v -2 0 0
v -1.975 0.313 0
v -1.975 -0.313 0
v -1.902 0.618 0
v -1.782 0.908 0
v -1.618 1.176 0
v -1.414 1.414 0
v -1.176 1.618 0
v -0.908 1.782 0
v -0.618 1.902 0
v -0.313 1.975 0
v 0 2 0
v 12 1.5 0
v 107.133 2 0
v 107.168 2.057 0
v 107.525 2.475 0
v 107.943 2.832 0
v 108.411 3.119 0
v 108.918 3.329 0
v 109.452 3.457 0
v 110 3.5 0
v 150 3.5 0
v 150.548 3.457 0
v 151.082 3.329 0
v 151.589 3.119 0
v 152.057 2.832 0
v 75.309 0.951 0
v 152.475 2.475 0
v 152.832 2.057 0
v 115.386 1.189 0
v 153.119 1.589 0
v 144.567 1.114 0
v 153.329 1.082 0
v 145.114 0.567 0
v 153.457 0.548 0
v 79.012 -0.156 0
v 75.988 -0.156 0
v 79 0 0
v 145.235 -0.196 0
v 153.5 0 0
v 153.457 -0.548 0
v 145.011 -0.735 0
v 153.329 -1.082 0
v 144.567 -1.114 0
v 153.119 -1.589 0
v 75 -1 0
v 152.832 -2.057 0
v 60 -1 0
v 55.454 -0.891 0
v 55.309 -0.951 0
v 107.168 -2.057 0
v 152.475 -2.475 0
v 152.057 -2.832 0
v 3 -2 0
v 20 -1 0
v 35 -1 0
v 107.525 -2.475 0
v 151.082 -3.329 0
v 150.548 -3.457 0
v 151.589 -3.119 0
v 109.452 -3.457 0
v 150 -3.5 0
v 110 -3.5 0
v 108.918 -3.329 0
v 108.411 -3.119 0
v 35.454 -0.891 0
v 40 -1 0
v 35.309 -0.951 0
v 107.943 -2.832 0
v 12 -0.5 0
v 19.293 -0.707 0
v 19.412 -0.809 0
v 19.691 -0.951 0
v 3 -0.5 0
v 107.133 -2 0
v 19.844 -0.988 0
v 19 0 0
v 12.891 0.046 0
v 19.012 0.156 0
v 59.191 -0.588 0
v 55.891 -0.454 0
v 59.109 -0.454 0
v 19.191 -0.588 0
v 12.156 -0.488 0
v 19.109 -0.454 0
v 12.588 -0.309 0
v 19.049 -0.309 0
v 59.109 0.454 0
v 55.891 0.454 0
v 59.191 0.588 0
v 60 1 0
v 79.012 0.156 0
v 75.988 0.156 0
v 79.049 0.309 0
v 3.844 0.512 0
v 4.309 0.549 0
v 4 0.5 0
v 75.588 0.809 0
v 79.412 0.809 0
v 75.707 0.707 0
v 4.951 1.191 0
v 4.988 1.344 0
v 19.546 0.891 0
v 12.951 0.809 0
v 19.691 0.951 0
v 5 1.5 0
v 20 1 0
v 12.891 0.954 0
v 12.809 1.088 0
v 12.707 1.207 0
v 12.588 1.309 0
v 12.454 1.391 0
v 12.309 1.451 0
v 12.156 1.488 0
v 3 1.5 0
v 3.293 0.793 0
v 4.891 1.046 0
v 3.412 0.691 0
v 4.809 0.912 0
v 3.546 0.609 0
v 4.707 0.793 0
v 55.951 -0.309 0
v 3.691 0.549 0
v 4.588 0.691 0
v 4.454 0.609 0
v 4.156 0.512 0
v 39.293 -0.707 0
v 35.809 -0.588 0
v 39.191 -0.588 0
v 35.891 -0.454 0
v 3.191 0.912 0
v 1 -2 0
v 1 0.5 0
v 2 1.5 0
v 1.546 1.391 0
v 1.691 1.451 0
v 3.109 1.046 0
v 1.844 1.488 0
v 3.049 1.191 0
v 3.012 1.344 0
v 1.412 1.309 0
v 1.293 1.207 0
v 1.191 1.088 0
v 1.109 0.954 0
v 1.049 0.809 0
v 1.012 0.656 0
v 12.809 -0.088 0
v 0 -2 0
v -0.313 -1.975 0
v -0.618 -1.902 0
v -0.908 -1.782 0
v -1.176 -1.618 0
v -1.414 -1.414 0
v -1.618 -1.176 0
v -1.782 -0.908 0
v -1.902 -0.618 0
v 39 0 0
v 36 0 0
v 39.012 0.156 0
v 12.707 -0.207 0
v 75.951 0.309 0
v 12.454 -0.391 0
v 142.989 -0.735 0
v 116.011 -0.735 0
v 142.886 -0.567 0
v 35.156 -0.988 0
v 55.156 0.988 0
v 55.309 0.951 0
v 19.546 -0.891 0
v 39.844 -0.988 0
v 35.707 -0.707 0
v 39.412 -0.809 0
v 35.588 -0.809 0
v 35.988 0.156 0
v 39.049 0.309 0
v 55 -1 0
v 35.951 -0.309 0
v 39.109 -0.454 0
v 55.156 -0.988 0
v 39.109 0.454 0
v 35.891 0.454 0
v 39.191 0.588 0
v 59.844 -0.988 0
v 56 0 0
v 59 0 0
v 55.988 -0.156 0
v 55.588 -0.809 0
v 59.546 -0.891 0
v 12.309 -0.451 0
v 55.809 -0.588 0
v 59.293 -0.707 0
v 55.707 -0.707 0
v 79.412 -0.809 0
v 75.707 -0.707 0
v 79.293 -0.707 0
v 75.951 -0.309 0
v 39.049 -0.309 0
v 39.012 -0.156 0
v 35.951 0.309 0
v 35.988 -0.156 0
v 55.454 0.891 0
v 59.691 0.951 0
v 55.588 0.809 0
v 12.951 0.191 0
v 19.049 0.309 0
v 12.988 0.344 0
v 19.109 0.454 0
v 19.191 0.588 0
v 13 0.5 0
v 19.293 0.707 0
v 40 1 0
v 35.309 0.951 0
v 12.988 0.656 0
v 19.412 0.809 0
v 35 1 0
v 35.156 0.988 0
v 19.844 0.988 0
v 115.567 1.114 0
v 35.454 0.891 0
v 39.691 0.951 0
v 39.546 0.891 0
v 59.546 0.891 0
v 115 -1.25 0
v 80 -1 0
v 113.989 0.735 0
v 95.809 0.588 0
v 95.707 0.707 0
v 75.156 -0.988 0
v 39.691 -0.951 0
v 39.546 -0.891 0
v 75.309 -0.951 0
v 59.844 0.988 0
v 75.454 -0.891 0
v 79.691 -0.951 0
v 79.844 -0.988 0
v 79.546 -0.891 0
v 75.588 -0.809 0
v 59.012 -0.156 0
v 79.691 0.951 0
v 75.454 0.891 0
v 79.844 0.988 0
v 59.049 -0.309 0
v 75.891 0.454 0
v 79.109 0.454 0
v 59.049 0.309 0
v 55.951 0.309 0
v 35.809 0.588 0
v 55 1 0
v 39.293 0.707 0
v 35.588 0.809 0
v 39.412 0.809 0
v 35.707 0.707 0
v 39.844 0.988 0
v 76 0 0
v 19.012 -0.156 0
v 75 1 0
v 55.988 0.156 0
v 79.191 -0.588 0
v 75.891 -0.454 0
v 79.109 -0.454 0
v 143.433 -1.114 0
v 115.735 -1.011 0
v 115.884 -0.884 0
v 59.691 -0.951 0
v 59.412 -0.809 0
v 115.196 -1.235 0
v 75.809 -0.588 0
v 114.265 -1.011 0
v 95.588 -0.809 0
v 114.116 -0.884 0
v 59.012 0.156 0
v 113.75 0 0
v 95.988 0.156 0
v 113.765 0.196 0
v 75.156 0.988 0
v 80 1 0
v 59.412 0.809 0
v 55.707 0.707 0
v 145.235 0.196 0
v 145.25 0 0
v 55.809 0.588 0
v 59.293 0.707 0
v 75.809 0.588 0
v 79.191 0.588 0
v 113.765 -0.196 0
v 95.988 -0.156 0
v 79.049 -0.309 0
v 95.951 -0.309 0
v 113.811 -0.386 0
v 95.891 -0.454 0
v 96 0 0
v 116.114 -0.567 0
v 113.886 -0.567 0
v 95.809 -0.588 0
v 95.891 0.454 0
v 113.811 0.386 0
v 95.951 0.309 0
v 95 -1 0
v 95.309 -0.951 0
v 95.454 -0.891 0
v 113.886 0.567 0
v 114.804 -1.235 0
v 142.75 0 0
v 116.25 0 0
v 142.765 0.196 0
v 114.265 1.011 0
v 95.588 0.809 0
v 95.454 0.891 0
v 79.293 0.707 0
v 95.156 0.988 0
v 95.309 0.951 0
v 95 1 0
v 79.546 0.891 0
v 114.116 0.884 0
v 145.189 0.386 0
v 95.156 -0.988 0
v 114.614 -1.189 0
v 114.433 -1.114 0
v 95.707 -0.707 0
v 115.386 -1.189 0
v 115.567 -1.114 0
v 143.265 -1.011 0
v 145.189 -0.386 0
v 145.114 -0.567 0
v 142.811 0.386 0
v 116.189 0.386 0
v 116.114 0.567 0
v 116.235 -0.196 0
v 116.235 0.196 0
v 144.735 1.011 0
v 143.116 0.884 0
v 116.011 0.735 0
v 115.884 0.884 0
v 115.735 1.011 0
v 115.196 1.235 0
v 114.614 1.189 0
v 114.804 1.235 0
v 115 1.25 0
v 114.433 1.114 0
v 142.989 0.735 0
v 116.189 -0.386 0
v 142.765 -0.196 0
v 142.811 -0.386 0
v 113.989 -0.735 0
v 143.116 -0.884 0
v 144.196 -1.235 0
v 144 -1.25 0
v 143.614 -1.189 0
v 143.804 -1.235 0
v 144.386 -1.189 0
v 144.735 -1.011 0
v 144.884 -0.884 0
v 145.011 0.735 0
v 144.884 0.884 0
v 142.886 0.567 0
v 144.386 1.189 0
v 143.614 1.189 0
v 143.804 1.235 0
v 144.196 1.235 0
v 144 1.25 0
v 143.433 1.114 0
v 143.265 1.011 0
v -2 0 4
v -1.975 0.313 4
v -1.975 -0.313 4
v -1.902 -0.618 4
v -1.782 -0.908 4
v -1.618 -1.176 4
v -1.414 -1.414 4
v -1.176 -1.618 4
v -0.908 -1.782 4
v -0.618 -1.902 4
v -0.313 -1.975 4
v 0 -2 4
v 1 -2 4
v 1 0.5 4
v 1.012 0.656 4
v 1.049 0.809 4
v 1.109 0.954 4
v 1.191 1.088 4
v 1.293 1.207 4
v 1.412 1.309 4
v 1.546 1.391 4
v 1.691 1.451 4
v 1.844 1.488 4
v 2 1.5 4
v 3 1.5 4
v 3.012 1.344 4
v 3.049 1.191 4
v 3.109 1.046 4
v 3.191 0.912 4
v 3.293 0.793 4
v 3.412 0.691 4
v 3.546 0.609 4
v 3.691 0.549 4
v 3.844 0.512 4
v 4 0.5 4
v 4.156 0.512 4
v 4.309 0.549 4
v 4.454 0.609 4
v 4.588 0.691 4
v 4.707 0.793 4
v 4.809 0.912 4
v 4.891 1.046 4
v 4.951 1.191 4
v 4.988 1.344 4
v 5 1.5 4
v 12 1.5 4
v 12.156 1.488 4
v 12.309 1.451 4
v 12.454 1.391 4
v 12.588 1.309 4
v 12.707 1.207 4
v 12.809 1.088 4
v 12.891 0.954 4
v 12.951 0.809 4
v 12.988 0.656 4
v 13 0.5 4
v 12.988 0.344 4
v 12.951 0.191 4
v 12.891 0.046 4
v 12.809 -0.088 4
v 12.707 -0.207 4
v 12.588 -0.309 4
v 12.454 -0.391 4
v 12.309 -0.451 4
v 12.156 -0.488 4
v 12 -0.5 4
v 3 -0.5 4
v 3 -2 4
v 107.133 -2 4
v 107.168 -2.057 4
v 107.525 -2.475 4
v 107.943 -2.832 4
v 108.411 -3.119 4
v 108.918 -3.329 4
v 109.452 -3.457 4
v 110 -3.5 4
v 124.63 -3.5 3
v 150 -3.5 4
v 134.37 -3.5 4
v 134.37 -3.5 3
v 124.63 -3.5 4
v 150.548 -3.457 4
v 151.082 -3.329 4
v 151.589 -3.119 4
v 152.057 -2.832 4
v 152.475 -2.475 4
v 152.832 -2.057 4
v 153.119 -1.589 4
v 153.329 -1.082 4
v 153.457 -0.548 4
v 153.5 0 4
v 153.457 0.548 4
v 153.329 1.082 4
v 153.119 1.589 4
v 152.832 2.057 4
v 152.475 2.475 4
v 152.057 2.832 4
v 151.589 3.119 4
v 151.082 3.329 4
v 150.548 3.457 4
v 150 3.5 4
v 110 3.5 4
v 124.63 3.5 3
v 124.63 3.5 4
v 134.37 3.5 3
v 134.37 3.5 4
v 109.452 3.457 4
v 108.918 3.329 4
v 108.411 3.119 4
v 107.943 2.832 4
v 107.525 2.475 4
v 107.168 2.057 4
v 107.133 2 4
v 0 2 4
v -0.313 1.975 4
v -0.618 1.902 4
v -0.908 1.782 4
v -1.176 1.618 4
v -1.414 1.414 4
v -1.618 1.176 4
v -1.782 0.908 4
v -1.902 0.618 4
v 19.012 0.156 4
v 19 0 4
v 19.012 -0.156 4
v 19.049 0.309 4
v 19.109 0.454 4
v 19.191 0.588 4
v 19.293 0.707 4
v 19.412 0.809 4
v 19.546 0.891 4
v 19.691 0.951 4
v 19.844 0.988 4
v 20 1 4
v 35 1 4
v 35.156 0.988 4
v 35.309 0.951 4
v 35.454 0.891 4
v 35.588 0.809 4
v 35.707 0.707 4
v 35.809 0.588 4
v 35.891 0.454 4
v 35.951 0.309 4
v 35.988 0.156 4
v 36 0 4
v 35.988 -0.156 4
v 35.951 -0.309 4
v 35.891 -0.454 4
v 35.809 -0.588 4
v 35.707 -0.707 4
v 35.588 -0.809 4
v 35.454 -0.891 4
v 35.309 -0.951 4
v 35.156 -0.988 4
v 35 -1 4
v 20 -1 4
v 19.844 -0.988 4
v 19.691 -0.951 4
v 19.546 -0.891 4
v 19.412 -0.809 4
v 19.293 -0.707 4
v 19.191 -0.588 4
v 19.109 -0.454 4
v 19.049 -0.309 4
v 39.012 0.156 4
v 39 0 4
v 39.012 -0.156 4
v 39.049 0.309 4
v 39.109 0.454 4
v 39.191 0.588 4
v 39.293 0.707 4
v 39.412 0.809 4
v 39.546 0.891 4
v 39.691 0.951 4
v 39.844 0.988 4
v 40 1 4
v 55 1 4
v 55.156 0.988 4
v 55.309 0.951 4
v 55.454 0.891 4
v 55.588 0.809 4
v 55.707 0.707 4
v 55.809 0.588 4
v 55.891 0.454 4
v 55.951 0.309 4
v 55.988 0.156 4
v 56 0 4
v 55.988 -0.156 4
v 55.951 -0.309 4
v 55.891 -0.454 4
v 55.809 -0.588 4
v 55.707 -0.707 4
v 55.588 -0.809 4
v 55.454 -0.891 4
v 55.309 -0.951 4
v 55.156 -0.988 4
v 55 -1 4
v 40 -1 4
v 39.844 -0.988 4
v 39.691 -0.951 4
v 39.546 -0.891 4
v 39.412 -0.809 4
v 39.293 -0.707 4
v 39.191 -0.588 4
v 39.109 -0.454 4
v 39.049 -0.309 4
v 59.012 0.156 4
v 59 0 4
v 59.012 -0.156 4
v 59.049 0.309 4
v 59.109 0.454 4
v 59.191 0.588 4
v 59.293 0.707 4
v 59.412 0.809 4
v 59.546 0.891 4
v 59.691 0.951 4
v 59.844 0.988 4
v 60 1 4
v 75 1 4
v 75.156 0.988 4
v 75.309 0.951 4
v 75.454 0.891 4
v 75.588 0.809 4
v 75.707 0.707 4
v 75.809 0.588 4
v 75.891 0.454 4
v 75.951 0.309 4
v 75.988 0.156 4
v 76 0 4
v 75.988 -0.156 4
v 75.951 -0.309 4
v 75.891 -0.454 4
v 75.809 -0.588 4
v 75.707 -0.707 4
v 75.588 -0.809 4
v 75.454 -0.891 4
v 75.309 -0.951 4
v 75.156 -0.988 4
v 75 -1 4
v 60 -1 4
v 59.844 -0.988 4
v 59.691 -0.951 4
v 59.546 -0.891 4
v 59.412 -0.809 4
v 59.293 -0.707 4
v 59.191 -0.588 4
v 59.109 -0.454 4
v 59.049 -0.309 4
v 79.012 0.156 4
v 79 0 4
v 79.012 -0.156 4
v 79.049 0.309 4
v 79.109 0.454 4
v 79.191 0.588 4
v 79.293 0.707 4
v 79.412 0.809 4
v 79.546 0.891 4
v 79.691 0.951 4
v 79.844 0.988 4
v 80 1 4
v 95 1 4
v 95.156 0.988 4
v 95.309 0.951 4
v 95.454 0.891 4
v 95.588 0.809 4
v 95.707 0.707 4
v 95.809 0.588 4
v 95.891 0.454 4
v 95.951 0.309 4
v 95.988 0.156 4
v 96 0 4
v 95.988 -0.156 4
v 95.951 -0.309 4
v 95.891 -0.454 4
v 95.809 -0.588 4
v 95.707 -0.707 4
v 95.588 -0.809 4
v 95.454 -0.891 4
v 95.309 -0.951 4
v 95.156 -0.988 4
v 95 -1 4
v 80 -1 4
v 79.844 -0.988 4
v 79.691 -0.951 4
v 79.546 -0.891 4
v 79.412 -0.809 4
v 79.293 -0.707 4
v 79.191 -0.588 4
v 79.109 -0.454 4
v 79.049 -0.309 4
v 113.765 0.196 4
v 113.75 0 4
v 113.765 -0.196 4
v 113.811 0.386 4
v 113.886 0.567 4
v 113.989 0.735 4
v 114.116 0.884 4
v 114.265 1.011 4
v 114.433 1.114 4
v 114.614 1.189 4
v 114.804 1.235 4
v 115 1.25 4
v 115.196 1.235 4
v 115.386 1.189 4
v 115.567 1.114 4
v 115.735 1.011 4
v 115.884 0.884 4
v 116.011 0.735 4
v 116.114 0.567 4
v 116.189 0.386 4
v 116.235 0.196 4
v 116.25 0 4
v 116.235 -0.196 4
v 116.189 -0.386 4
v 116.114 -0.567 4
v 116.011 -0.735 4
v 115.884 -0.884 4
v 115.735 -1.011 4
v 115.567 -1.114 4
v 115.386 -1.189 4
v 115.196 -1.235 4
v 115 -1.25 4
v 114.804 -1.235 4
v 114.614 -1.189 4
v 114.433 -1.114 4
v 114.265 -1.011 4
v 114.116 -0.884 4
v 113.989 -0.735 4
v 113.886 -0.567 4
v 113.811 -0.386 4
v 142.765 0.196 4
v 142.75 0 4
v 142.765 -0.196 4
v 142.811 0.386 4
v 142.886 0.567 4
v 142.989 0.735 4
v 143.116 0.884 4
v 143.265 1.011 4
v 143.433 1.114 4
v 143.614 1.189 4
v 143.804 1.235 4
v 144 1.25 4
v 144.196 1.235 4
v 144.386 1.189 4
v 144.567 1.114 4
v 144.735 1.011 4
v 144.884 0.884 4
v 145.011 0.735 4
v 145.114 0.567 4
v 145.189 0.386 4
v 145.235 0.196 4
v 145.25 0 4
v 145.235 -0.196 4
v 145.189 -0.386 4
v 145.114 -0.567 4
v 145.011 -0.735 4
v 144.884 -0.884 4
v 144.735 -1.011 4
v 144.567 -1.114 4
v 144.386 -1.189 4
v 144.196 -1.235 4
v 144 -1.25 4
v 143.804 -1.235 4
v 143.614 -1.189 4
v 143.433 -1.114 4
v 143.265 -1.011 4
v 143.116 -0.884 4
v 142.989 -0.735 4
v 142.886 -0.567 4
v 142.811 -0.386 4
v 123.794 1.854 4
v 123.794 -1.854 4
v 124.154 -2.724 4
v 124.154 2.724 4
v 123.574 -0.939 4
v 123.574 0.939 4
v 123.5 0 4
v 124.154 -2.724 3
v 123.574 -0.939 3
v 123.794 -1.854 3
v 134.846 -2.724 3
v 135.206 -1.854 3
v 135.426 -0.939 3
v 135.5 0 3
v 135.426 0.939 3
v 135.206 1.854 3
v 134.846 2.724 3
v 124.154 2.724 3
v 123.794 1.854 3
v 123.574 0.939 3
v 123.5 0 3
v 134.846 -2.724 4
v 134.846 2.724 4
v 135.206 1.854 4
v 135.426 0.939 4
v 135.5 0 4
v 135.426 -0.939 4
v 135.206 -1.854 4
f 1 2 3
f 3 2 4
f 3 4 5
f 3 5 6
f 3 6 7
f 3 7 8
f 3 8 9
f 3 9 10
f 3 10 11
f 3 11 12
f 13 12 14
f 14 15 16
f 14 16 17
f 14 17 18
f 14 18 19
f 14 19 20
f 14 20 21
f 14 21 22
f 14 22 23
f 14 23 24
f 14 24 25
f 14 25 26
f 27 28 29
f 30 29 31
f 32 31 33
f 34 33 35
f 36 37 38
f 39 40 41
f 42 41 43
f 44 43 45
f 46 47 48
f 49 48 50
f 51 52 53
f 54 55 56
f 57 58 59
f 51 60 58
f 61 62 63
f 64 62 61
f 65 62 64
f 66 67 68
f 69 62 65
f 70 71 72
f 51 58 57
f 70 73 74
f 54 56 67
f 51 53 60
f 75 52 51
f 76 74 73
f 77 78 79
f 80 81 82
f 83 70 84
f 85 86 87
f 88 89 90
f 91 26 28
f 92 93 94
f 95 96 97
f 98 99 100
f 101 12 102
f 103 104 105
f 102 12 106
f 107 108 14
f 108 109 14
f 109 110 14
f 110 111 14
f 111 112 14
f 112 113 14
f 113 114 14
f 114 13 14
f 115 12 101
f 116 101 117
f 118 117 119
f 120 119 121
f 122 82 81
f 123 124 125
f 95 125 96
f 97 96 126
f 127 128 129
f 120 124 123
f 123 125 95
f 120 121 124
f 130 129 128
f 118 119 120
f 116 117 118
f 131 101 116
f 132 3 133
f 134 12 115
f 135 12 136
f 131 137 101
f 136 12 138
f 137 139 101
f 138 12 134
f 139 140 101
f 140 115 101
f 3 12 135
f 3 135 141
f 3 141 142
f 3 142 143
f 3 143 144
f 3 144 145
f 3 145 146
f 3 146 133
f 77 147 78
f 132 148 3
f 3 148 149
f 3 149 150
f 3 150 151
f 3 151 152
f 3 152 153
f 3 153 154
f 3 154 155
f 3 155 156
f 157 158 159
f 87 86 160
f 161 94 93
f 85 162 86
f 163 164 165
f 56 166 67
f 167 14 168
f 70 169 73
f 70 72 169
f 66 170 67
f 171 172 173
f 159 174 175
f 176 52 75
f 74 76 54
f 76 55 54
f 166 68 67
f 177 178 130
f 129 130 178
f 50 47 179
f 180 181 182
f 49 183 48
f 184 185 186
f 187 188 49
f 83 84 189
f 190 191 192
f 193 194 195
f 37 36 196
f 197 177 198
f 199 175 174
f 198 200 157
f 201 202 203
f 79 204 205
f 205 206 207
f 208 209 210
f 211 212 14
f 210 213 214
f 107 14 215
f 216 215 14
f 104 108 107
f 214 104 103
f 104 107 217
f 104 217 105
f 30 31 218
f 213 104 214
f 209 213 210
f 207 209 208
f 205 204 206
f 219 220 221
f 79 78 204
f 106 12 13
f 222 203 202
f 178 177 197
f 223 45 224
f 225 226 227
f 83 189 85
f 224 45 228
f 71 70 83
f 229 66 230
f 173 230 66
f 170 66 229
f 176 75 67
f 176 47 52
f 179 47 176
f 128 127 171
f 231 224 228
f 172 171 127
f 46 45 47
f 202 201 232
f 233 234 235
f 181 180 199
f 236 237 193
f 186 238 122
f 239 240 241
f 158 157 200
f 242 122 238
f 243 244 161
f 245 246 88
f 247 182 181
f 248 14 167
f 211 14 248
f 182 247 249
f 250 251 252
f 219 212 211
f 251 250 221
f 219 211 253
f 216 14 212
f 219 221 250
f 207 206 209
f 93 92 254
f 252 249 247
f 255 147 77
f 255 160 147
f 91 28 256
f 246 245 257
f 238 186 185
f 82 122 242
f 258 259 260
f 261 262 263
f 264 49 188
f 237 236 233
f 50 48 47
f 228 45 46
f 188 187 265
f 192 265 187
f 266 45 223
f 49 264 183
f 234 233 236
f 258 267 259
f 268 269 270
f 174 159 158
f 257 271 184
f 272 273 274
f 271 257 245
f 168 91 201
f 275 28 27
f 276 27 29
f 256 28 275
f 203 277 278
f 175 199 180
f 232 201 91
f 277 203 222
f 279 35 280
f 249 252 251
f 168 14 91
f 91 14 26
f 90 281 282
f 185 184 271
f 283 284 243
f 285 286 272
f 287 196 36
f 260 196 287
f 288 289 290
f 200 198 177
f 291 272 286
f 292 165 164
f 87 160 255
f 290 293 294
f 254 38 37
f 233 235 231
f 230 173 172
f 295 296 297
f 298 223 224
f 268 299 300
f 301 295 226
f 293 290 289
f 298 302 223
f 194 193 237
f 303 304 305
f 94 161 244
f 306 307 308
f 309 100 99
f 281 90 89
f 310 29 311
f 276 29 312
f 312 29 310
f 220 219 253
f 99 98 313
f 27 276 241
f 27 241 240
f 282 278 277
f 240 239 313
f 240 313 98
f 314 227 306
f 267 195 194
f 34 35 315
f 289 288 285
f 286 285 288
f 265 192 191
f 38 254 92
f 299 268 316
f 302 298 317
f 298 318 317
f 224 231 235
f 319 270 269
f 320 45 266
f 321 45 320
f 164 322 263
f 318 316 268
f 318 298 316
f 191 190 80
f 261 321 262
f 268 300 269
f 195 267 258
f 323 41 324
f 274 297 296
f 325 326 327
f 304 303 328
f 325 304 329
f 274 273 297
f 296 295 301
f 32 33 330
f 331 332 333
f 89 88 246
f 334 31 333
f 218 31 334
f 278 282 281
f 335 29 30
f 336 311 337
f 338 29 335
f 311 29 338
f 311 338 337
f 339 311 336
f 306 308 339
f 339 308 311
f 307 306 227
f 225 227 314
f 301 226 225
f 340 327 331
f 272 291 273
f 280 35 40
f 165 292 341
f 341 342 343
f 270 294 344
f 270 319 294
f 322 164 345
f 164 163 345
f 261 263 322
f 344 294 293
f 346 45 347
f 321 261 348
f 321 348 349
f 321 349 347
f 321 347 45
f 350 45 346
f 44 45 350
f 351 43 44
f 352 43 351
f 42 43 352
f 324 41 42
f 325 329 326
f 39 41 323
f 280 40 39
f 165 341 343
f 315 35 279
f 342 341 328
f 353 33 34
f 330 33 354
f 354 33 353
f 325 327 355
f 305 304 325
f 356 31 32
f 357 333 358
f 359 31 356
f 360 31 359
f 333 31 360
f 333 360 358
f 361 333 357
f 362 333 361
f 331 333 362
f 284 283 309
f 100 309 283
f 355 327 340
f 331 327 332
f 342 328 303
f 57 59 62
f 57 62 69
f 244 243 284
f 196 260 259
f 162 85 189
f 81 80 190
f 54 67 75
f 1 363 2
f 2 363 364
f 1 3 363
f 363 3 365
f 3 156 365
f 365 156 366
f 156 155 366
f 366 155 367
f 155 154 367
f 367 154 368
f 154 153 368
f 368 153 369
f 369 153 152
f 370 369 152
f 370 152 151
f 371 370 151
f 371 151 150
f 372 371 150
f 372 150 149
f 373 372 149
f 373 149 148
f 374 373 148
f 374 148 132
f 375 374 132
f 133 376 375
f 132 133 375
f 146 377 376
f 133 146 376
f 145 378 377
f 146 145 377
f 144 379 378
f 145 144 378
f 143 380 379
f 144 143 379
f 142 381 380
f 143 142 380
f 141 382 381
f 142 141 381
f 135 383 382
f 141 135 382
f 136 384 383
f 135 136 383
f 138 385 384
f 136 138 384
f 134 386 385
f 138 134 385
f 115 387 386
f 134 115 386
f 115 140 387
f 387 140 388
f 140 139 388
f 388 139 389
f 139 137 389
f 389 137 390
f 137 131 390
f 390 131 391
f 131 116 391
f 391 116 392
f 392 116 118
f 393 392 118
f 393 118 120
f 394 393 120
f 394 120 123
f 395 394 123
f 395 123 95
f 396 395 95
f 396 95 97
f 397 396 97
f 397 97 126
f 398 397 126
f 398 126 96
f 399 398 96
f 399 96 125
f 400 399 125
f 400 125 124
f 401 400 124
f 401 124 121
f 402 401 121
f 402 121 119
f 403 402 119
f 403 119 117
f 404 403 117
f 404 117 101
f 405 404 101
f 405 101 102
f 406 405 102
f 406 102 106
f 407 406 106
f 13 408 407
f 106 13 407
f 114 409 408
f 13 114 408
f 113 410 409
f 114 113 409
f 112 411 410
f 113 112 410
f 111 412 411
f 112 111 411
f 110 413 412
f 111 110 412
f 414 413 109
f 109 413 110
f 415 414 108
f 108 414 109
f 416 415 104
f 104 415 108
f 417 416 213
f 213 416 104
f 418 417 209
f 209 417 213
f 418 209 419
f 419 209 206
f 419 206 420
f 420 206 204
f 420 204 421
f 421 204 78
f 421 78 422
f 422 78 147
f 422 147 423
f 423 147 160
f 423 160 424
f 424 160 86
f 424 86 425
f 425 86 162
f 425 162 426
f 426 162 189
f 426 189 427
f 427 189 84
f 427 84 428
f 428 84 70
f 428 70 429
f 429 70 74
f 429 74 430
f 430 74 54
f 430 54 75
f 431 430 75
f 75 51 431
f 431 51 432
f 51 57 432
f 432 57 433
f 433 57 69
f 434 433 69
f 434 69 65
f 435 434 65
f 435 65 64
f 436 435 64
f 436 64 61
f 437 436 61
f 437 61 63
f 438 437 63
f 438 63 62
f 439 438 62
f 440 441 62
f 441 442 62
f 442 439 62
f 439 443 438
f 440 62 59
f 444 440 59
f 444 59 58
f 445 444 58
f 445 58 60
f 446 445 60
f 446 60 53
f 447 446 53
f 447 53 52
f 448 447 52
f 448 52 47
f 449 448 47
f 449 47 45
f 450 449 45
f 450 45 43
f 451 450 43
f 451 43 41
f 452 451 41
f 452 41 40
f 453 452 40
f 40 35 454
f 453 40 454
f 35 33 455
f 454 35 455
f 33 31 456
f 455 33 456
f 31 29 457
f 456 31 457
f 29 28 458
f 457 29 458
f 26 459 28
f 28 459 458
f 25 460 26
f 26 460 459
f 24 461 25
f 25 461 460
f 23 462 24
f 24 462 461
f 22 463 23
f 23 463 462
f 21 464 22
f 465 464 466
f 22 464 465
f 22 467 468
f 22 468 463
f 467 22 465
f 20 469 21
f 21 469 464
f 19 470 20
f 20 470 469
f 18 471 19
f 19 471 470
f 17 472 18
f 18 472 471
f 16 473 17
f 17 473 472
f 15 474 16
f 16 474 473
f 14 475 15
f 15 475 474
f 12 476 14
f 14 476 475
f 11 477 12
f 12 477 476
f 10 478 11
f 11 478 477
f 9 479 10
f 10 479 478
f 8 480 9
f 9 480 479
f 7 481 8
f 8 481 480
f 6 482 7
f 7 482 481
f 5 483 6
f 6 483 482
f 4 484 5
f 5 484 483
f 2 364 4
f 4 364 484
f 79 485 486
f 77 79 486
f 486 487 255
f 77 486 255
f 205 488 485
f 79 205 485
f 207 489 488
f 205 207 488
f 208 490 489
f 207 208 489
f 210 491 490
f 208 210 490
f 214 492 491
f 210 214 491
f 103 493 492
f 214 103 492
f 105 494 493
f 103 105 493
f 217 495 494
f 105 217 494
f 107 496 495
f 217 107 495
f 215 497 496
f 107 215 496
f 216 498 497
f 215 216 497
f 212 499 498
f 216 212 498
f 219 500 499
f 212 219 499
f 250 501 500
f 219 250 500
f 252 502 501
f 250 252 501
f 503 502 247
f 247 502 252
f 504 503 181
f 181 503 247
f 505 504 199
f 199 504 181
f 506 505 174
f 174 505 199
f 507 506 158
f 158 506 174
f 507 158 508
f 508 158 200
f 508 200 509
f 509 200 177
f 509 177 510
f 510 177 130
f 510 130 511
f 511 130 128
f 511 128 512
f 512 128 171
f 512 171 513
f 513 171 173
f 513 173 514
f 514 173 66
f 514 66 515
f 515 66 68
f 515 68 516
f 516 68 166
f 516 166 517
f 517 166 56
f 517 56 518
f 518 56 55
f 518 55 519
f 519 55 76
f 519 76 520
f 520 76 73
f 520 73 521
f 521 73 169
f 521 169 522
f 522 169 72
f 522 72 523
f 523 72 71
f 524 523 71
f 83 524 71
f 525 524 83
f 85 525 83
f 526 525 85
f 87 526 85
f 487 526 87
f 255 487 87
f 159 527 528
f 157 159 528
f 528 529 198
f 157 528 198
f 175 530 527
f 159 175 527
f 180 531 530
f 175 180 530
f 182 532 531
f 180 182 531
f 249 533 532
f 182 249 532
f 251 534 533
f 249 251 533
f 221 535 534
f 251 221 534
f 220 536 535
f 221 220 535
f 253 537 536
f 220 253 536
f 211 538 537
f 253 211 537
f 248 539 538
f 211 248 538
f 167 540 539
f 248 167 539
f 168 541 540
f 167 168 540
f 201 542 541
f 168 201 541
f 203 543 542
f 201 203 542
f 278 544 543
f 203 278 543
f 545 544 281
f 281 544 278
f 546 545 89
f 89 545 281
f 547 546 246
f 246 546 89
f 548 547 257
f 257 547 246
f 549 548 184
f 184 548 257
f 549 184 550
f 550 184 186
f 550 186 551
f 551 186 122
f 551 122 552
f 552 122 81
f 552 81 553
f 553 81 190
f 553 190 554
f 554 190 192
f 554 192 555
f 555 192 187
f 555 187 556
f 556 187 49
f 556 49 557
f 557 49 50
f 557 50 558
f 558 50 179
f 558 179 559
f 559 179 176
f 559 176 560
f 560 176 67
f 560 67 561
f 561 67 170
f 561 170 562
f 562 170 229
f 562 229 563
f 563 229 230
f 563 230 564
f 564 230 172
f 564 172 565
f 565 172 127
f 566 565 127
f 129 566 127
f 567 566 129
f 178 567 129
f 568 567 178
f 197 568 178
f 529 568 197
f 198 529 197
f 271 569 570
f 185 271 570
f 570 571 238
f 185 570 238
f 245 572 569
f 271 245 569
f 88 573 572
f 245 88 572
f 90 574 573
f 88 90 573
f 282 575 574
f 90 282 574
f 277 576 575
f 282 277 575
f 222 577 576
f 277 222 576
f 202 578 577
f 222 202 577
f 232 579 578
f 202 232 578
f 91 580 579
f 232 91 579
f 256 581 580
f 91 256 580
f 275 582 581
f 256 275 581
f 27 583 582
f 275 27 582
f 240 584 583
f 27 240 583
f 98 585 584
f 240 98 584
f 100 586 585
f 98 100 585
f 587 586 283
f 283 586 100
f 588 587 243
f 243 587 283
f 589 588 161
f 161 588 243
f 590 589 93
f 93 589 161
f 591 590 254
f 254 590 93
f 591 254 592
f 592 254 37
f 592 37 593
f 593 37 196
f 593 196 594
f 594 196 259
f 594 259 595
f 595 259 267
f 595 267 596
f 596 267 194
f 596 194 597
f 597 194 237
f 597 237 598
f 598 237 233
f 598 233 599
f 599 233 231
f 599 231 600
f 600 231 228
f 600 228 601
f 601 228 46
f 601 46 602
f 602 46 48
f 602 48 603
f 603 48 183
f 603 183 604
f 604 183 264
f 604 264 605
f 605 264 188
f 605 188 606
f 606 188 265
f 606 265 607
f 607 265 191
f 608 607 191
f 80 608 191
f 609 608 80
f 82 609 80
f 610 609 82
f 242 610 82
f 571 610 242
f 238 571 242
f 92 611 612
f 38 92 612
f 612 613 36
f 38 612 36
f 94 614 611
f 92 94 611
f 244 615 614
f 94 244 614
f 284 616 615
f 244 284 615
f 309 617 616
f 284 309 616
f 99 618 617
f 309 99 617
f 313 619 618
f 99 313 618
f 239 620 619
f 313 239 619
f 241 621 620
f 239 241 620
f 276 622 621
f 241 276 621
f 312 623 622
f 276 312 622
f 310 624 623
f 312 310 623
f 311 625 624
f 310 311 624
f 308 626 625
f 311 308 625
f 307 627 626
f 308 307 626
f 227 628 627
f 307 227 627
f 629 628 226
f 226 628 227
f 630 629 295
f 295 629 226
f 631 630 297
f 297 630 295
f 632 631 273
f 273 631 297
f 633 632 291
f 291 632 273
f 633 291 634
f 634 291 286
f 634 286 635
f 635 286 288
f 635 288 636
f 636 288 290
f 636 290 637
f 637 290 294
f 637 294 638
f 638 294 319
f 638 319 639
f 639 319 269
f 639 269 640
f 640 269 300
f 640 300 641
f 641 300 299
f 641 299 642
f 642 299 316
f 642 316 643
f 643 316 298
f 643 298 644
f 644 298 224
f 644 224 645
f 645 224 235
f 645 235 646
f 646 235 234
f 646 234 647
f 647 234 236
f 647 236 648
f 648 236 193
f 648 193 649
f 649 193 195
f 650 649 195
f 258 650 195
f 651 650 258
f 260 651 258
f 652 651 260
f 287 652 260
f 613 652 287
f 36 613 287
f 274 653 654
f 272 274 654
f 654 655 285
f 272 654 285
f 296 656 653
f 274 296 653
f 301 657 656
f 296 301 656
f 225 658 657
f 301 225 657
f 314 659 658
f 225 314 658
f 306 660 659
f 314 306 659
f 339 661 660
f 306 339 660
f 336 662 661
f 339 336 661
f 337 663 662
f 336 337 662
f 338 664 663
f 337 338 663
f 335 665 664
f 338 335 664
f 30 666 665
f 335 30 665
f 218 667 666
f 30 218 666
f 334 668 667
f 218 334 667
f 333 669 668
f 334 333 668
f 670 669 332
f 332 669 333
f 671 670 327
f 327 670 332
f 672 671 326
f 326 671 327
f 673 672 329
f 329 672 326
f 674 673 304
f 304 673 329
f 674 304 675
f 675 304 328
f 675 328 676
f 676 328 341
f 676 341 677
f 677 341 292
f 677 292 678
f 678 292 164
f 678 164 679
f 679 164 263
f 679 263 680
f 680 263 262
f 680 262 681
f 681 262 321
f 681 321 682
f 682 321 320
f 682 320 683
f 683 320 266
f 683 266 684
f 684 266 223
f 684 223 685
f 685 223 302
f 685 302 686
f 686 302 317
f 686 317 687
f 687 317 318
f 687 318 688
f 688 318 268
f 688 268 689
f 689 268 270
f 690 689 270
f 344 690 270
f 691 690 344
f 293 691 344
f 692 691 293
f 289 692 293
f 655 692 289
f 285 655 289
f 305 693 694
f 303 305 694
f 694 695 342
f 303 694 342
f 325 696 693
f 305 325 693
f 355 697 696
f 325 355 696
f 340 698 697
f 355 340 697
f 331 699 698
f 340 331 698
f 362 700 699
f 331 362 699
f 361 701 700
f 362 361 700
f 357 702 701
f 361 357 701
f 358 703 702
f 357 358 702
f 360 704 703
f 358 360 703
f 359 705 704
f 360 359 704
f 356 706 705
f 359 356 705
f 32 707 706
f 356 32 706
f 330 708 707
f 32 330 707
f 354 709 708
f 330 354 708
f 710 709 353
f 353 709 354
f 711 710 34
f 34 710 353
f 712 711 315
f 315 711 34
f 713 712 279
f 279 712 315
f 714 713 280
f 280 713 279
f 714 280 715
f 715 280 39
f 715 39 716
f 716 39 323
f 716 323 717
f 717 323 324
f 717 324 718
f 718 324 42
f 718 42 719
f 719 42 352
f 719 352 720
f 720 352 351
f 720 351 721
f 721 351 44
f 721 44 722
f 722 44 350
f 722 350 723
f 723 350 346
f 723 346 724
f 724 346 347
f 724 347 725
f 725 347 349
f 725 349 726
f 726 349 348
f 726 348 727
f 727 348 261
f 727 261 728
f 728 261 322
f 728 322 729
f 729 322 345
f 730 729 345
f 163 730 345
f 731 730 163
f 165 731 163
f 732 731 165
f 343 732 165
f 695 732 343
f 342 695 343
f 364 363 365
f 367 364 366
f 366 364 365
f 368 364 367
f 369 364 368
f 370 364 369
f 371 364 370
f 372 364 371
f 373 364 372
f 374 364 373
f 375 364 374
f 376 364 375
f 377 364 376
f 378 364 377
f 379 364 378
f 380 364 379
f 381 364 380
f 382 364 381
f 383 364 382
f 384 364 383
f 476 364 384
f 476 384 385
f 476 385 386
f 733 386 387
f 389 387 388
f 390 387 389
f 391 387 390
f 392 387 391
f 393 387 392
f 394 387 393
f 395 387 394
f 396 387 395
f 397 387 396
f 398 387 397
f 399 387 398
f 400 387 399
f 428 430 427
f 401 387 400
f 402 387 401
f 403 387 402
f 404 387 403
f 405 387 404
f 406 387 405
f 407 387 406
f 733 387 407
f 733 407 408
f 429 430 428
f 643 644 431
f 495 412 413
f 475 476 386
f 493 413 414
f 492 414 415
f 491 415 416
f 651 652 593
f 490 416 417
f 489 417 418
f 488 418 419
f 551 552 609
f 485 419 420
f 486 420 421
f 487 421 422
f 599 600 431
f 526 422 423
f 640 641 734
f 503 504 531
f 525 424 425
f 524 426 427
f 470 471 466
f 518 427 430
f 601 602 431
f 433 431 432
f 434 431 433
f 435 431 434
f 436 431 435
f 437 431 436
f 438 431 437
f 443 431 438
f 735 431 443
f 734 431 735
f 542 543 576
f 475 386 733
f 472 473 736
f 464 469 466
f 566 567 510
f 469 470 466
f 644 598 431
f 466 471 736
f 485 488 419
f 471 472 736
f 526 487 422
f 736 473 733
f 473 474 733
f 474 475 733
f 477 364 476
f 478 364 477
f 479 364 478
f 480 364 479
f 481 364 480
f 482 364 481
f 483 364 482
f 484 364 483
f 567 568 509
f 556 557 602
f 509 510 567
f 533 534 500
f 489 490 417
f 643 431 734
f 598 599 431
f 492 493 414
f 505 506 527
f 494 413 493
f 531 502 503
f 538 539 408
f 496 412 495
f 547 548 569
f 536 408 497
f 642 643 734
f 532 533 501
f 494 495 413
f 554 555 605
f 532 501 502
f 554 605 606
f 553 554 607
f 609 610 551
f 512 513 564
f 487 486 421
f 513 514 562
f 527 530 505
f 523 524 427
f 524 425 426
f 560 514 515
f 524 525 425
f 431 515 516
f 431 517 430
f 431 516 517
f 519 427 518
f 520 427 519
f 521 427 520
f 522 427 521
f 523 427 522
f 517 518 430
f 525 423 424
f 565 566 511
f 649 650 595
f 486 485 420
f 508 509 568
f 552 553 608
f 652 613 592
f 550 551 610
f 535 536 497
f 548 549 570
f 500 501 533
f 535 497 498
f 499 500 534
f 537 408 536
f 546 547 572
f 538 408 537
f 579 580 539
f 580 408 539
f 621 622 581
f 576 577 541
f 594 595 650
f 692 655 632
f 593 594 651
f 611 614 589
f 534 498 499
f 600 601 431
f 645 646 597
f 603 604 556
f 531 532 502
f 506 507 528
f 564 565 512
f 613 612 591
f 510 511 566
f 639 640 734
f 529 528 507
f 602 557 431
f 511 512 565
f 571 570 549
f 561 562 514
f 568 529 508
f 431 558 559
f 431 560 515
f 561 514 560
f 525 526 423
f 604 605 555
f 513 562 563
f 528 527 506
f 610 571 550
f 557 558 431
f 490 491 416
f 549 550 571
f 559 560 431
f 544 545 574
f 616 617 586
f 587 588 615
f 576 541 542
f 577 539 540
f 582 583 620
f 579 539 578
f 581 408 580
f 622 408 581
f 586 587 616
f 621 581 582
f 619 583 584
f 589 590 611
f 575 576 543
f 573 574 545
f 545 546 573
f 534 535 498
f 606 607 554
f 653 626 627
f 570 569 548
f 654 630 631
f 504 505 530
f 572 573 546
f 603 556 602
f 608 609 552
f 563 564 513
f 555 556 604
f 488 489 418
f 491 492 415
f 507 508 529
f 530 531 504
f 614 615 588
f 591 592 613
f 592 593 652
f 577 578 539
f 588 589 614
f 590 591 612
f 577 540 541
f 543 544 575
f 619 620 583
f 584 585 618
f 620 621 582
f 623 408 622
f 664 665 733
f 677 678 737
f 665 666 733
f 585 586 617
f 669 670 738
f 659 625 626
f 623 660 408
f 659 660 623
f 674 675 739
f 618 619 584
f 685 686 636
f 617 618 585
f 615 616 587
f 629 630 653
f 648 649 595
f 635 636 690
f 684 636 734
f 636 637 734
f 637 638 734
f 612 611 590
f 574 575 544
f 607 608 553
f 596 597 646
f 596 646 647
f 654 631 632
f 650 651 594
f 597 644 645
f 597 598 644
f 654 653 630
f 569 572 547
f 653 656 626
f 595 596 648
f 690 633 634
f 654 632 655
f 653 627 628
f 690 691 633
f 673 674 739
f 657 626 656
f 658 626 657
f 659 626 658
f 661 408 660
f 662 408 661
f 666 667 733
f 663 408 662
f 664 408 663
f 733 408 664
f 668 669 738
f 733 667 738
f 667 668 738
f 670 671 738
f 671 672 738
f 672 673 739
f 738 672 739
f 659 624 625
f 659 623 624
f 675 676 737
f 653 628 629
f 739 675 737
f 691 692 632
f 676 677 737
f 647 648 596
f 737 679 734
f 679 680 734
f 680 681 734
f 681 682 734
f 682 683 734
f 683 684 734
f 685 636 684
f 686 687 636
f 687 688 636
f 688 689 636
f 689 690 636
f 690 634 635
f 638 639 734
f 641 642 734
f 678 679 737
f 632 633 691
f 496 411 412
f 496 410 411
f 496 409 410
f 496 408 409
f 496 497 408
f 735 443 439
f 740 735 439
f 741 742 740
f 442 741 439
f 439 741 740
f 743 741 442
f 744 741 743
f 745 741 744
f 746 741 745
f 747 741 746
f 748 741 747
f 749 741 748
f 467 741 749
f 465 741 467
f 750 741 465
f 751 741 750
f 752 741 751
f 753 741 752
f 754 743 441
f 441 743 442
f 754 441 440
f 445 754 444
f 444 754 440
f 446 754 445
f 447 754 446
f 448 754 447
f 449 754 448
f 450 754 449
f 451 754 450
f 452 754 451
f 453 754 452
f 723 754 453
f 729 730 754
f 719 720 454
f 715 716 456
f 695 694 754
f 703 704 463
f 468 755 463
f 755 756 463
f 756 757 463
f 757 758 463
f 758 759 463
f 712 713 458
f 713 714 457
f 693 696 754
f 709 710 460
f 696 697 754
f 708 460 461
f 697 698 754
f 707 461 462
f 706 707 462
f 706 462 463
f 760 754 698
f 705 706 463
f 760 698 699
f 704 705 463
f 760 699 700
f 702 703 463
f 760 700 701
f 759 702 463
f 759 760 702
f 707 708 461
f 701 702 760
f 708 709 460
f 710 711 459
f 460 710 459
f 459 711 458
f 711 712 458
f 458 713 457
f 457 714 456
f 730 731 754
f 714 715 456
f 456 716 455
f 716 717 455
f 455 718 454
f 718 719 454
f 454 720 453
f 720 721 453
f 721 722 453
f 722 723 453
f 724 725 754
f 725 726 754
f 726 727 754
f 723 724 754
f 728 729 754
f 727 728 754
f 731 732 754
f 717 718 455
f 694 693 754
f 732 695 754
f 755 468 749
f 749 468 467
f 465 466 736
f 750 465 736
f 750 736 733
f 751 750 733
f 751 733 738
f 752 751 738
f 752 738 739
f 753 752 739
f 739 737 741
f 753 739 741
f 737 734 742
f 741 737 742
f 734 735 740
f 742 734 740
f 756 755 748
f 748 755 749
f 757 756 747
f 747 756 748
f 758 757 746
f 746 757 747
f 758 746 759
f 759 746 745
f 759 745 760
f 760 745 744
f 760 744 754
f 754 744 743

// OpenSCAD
$fn = 40;





union() {

	difference() {
		hull() {
			translate([110,0,0]) cylinder(h = 4, r=2);
			translate([0,0,0]) cylinder(h = 4, r=2);
		}

		union() {
			translate([2,0.5,0]) 
				hull() {
					translate([0,-5,-1]) cylinder(h = 6, r=1);
					translate([0,0,-1]) cylinder(h = 6, r=1);
				}

			translate([2,0.5,0]) {
				difference() {
					hull() {
						translate([0,0,-1]) cylinder(h = 6, r=1);
						translate([10,0,-1]) cylinder(h = 6, r=1);
					}

					translate([2,1,-1]) cylinder(h = 6, r=1);
				}
			}			
		}

		union() {
			translate([20,0,-1])  {
				slit(15,1);
			}

			translate([40,0,-1])  {
				slit(15,1);
			}

			translate([60,0,-1])  {
				slit(15,1);
			}	

			translate([80,0,-1])  {
				slit(15,1);
			}	
		}

		
	}


	difference() {
		hull() {
			translate([150,0,0]) cylinder(h = 4, r=3.5);
			translate([110,0,0]) cylinder(h = 4, r=3.5);
		}
		translate([115,0,0]) {
			union() {
				translate([0,0,-1]) cylinder(h = 6, r=(2.5/2));
				translate([29/2,0,3]) cylinder(h = 2, r=(12/2));
				translate([29,0,-1]) cylinder(h = 6, r=(2.5/2));	
			}
		}	
	}
}


module slit(length,radius) {
	hull() {
		translate([length,0,0]) cylinder(h = 6, r=radius);
		translate([0,0,0]) cylinder(h = 6, r=radius);
	}
}
